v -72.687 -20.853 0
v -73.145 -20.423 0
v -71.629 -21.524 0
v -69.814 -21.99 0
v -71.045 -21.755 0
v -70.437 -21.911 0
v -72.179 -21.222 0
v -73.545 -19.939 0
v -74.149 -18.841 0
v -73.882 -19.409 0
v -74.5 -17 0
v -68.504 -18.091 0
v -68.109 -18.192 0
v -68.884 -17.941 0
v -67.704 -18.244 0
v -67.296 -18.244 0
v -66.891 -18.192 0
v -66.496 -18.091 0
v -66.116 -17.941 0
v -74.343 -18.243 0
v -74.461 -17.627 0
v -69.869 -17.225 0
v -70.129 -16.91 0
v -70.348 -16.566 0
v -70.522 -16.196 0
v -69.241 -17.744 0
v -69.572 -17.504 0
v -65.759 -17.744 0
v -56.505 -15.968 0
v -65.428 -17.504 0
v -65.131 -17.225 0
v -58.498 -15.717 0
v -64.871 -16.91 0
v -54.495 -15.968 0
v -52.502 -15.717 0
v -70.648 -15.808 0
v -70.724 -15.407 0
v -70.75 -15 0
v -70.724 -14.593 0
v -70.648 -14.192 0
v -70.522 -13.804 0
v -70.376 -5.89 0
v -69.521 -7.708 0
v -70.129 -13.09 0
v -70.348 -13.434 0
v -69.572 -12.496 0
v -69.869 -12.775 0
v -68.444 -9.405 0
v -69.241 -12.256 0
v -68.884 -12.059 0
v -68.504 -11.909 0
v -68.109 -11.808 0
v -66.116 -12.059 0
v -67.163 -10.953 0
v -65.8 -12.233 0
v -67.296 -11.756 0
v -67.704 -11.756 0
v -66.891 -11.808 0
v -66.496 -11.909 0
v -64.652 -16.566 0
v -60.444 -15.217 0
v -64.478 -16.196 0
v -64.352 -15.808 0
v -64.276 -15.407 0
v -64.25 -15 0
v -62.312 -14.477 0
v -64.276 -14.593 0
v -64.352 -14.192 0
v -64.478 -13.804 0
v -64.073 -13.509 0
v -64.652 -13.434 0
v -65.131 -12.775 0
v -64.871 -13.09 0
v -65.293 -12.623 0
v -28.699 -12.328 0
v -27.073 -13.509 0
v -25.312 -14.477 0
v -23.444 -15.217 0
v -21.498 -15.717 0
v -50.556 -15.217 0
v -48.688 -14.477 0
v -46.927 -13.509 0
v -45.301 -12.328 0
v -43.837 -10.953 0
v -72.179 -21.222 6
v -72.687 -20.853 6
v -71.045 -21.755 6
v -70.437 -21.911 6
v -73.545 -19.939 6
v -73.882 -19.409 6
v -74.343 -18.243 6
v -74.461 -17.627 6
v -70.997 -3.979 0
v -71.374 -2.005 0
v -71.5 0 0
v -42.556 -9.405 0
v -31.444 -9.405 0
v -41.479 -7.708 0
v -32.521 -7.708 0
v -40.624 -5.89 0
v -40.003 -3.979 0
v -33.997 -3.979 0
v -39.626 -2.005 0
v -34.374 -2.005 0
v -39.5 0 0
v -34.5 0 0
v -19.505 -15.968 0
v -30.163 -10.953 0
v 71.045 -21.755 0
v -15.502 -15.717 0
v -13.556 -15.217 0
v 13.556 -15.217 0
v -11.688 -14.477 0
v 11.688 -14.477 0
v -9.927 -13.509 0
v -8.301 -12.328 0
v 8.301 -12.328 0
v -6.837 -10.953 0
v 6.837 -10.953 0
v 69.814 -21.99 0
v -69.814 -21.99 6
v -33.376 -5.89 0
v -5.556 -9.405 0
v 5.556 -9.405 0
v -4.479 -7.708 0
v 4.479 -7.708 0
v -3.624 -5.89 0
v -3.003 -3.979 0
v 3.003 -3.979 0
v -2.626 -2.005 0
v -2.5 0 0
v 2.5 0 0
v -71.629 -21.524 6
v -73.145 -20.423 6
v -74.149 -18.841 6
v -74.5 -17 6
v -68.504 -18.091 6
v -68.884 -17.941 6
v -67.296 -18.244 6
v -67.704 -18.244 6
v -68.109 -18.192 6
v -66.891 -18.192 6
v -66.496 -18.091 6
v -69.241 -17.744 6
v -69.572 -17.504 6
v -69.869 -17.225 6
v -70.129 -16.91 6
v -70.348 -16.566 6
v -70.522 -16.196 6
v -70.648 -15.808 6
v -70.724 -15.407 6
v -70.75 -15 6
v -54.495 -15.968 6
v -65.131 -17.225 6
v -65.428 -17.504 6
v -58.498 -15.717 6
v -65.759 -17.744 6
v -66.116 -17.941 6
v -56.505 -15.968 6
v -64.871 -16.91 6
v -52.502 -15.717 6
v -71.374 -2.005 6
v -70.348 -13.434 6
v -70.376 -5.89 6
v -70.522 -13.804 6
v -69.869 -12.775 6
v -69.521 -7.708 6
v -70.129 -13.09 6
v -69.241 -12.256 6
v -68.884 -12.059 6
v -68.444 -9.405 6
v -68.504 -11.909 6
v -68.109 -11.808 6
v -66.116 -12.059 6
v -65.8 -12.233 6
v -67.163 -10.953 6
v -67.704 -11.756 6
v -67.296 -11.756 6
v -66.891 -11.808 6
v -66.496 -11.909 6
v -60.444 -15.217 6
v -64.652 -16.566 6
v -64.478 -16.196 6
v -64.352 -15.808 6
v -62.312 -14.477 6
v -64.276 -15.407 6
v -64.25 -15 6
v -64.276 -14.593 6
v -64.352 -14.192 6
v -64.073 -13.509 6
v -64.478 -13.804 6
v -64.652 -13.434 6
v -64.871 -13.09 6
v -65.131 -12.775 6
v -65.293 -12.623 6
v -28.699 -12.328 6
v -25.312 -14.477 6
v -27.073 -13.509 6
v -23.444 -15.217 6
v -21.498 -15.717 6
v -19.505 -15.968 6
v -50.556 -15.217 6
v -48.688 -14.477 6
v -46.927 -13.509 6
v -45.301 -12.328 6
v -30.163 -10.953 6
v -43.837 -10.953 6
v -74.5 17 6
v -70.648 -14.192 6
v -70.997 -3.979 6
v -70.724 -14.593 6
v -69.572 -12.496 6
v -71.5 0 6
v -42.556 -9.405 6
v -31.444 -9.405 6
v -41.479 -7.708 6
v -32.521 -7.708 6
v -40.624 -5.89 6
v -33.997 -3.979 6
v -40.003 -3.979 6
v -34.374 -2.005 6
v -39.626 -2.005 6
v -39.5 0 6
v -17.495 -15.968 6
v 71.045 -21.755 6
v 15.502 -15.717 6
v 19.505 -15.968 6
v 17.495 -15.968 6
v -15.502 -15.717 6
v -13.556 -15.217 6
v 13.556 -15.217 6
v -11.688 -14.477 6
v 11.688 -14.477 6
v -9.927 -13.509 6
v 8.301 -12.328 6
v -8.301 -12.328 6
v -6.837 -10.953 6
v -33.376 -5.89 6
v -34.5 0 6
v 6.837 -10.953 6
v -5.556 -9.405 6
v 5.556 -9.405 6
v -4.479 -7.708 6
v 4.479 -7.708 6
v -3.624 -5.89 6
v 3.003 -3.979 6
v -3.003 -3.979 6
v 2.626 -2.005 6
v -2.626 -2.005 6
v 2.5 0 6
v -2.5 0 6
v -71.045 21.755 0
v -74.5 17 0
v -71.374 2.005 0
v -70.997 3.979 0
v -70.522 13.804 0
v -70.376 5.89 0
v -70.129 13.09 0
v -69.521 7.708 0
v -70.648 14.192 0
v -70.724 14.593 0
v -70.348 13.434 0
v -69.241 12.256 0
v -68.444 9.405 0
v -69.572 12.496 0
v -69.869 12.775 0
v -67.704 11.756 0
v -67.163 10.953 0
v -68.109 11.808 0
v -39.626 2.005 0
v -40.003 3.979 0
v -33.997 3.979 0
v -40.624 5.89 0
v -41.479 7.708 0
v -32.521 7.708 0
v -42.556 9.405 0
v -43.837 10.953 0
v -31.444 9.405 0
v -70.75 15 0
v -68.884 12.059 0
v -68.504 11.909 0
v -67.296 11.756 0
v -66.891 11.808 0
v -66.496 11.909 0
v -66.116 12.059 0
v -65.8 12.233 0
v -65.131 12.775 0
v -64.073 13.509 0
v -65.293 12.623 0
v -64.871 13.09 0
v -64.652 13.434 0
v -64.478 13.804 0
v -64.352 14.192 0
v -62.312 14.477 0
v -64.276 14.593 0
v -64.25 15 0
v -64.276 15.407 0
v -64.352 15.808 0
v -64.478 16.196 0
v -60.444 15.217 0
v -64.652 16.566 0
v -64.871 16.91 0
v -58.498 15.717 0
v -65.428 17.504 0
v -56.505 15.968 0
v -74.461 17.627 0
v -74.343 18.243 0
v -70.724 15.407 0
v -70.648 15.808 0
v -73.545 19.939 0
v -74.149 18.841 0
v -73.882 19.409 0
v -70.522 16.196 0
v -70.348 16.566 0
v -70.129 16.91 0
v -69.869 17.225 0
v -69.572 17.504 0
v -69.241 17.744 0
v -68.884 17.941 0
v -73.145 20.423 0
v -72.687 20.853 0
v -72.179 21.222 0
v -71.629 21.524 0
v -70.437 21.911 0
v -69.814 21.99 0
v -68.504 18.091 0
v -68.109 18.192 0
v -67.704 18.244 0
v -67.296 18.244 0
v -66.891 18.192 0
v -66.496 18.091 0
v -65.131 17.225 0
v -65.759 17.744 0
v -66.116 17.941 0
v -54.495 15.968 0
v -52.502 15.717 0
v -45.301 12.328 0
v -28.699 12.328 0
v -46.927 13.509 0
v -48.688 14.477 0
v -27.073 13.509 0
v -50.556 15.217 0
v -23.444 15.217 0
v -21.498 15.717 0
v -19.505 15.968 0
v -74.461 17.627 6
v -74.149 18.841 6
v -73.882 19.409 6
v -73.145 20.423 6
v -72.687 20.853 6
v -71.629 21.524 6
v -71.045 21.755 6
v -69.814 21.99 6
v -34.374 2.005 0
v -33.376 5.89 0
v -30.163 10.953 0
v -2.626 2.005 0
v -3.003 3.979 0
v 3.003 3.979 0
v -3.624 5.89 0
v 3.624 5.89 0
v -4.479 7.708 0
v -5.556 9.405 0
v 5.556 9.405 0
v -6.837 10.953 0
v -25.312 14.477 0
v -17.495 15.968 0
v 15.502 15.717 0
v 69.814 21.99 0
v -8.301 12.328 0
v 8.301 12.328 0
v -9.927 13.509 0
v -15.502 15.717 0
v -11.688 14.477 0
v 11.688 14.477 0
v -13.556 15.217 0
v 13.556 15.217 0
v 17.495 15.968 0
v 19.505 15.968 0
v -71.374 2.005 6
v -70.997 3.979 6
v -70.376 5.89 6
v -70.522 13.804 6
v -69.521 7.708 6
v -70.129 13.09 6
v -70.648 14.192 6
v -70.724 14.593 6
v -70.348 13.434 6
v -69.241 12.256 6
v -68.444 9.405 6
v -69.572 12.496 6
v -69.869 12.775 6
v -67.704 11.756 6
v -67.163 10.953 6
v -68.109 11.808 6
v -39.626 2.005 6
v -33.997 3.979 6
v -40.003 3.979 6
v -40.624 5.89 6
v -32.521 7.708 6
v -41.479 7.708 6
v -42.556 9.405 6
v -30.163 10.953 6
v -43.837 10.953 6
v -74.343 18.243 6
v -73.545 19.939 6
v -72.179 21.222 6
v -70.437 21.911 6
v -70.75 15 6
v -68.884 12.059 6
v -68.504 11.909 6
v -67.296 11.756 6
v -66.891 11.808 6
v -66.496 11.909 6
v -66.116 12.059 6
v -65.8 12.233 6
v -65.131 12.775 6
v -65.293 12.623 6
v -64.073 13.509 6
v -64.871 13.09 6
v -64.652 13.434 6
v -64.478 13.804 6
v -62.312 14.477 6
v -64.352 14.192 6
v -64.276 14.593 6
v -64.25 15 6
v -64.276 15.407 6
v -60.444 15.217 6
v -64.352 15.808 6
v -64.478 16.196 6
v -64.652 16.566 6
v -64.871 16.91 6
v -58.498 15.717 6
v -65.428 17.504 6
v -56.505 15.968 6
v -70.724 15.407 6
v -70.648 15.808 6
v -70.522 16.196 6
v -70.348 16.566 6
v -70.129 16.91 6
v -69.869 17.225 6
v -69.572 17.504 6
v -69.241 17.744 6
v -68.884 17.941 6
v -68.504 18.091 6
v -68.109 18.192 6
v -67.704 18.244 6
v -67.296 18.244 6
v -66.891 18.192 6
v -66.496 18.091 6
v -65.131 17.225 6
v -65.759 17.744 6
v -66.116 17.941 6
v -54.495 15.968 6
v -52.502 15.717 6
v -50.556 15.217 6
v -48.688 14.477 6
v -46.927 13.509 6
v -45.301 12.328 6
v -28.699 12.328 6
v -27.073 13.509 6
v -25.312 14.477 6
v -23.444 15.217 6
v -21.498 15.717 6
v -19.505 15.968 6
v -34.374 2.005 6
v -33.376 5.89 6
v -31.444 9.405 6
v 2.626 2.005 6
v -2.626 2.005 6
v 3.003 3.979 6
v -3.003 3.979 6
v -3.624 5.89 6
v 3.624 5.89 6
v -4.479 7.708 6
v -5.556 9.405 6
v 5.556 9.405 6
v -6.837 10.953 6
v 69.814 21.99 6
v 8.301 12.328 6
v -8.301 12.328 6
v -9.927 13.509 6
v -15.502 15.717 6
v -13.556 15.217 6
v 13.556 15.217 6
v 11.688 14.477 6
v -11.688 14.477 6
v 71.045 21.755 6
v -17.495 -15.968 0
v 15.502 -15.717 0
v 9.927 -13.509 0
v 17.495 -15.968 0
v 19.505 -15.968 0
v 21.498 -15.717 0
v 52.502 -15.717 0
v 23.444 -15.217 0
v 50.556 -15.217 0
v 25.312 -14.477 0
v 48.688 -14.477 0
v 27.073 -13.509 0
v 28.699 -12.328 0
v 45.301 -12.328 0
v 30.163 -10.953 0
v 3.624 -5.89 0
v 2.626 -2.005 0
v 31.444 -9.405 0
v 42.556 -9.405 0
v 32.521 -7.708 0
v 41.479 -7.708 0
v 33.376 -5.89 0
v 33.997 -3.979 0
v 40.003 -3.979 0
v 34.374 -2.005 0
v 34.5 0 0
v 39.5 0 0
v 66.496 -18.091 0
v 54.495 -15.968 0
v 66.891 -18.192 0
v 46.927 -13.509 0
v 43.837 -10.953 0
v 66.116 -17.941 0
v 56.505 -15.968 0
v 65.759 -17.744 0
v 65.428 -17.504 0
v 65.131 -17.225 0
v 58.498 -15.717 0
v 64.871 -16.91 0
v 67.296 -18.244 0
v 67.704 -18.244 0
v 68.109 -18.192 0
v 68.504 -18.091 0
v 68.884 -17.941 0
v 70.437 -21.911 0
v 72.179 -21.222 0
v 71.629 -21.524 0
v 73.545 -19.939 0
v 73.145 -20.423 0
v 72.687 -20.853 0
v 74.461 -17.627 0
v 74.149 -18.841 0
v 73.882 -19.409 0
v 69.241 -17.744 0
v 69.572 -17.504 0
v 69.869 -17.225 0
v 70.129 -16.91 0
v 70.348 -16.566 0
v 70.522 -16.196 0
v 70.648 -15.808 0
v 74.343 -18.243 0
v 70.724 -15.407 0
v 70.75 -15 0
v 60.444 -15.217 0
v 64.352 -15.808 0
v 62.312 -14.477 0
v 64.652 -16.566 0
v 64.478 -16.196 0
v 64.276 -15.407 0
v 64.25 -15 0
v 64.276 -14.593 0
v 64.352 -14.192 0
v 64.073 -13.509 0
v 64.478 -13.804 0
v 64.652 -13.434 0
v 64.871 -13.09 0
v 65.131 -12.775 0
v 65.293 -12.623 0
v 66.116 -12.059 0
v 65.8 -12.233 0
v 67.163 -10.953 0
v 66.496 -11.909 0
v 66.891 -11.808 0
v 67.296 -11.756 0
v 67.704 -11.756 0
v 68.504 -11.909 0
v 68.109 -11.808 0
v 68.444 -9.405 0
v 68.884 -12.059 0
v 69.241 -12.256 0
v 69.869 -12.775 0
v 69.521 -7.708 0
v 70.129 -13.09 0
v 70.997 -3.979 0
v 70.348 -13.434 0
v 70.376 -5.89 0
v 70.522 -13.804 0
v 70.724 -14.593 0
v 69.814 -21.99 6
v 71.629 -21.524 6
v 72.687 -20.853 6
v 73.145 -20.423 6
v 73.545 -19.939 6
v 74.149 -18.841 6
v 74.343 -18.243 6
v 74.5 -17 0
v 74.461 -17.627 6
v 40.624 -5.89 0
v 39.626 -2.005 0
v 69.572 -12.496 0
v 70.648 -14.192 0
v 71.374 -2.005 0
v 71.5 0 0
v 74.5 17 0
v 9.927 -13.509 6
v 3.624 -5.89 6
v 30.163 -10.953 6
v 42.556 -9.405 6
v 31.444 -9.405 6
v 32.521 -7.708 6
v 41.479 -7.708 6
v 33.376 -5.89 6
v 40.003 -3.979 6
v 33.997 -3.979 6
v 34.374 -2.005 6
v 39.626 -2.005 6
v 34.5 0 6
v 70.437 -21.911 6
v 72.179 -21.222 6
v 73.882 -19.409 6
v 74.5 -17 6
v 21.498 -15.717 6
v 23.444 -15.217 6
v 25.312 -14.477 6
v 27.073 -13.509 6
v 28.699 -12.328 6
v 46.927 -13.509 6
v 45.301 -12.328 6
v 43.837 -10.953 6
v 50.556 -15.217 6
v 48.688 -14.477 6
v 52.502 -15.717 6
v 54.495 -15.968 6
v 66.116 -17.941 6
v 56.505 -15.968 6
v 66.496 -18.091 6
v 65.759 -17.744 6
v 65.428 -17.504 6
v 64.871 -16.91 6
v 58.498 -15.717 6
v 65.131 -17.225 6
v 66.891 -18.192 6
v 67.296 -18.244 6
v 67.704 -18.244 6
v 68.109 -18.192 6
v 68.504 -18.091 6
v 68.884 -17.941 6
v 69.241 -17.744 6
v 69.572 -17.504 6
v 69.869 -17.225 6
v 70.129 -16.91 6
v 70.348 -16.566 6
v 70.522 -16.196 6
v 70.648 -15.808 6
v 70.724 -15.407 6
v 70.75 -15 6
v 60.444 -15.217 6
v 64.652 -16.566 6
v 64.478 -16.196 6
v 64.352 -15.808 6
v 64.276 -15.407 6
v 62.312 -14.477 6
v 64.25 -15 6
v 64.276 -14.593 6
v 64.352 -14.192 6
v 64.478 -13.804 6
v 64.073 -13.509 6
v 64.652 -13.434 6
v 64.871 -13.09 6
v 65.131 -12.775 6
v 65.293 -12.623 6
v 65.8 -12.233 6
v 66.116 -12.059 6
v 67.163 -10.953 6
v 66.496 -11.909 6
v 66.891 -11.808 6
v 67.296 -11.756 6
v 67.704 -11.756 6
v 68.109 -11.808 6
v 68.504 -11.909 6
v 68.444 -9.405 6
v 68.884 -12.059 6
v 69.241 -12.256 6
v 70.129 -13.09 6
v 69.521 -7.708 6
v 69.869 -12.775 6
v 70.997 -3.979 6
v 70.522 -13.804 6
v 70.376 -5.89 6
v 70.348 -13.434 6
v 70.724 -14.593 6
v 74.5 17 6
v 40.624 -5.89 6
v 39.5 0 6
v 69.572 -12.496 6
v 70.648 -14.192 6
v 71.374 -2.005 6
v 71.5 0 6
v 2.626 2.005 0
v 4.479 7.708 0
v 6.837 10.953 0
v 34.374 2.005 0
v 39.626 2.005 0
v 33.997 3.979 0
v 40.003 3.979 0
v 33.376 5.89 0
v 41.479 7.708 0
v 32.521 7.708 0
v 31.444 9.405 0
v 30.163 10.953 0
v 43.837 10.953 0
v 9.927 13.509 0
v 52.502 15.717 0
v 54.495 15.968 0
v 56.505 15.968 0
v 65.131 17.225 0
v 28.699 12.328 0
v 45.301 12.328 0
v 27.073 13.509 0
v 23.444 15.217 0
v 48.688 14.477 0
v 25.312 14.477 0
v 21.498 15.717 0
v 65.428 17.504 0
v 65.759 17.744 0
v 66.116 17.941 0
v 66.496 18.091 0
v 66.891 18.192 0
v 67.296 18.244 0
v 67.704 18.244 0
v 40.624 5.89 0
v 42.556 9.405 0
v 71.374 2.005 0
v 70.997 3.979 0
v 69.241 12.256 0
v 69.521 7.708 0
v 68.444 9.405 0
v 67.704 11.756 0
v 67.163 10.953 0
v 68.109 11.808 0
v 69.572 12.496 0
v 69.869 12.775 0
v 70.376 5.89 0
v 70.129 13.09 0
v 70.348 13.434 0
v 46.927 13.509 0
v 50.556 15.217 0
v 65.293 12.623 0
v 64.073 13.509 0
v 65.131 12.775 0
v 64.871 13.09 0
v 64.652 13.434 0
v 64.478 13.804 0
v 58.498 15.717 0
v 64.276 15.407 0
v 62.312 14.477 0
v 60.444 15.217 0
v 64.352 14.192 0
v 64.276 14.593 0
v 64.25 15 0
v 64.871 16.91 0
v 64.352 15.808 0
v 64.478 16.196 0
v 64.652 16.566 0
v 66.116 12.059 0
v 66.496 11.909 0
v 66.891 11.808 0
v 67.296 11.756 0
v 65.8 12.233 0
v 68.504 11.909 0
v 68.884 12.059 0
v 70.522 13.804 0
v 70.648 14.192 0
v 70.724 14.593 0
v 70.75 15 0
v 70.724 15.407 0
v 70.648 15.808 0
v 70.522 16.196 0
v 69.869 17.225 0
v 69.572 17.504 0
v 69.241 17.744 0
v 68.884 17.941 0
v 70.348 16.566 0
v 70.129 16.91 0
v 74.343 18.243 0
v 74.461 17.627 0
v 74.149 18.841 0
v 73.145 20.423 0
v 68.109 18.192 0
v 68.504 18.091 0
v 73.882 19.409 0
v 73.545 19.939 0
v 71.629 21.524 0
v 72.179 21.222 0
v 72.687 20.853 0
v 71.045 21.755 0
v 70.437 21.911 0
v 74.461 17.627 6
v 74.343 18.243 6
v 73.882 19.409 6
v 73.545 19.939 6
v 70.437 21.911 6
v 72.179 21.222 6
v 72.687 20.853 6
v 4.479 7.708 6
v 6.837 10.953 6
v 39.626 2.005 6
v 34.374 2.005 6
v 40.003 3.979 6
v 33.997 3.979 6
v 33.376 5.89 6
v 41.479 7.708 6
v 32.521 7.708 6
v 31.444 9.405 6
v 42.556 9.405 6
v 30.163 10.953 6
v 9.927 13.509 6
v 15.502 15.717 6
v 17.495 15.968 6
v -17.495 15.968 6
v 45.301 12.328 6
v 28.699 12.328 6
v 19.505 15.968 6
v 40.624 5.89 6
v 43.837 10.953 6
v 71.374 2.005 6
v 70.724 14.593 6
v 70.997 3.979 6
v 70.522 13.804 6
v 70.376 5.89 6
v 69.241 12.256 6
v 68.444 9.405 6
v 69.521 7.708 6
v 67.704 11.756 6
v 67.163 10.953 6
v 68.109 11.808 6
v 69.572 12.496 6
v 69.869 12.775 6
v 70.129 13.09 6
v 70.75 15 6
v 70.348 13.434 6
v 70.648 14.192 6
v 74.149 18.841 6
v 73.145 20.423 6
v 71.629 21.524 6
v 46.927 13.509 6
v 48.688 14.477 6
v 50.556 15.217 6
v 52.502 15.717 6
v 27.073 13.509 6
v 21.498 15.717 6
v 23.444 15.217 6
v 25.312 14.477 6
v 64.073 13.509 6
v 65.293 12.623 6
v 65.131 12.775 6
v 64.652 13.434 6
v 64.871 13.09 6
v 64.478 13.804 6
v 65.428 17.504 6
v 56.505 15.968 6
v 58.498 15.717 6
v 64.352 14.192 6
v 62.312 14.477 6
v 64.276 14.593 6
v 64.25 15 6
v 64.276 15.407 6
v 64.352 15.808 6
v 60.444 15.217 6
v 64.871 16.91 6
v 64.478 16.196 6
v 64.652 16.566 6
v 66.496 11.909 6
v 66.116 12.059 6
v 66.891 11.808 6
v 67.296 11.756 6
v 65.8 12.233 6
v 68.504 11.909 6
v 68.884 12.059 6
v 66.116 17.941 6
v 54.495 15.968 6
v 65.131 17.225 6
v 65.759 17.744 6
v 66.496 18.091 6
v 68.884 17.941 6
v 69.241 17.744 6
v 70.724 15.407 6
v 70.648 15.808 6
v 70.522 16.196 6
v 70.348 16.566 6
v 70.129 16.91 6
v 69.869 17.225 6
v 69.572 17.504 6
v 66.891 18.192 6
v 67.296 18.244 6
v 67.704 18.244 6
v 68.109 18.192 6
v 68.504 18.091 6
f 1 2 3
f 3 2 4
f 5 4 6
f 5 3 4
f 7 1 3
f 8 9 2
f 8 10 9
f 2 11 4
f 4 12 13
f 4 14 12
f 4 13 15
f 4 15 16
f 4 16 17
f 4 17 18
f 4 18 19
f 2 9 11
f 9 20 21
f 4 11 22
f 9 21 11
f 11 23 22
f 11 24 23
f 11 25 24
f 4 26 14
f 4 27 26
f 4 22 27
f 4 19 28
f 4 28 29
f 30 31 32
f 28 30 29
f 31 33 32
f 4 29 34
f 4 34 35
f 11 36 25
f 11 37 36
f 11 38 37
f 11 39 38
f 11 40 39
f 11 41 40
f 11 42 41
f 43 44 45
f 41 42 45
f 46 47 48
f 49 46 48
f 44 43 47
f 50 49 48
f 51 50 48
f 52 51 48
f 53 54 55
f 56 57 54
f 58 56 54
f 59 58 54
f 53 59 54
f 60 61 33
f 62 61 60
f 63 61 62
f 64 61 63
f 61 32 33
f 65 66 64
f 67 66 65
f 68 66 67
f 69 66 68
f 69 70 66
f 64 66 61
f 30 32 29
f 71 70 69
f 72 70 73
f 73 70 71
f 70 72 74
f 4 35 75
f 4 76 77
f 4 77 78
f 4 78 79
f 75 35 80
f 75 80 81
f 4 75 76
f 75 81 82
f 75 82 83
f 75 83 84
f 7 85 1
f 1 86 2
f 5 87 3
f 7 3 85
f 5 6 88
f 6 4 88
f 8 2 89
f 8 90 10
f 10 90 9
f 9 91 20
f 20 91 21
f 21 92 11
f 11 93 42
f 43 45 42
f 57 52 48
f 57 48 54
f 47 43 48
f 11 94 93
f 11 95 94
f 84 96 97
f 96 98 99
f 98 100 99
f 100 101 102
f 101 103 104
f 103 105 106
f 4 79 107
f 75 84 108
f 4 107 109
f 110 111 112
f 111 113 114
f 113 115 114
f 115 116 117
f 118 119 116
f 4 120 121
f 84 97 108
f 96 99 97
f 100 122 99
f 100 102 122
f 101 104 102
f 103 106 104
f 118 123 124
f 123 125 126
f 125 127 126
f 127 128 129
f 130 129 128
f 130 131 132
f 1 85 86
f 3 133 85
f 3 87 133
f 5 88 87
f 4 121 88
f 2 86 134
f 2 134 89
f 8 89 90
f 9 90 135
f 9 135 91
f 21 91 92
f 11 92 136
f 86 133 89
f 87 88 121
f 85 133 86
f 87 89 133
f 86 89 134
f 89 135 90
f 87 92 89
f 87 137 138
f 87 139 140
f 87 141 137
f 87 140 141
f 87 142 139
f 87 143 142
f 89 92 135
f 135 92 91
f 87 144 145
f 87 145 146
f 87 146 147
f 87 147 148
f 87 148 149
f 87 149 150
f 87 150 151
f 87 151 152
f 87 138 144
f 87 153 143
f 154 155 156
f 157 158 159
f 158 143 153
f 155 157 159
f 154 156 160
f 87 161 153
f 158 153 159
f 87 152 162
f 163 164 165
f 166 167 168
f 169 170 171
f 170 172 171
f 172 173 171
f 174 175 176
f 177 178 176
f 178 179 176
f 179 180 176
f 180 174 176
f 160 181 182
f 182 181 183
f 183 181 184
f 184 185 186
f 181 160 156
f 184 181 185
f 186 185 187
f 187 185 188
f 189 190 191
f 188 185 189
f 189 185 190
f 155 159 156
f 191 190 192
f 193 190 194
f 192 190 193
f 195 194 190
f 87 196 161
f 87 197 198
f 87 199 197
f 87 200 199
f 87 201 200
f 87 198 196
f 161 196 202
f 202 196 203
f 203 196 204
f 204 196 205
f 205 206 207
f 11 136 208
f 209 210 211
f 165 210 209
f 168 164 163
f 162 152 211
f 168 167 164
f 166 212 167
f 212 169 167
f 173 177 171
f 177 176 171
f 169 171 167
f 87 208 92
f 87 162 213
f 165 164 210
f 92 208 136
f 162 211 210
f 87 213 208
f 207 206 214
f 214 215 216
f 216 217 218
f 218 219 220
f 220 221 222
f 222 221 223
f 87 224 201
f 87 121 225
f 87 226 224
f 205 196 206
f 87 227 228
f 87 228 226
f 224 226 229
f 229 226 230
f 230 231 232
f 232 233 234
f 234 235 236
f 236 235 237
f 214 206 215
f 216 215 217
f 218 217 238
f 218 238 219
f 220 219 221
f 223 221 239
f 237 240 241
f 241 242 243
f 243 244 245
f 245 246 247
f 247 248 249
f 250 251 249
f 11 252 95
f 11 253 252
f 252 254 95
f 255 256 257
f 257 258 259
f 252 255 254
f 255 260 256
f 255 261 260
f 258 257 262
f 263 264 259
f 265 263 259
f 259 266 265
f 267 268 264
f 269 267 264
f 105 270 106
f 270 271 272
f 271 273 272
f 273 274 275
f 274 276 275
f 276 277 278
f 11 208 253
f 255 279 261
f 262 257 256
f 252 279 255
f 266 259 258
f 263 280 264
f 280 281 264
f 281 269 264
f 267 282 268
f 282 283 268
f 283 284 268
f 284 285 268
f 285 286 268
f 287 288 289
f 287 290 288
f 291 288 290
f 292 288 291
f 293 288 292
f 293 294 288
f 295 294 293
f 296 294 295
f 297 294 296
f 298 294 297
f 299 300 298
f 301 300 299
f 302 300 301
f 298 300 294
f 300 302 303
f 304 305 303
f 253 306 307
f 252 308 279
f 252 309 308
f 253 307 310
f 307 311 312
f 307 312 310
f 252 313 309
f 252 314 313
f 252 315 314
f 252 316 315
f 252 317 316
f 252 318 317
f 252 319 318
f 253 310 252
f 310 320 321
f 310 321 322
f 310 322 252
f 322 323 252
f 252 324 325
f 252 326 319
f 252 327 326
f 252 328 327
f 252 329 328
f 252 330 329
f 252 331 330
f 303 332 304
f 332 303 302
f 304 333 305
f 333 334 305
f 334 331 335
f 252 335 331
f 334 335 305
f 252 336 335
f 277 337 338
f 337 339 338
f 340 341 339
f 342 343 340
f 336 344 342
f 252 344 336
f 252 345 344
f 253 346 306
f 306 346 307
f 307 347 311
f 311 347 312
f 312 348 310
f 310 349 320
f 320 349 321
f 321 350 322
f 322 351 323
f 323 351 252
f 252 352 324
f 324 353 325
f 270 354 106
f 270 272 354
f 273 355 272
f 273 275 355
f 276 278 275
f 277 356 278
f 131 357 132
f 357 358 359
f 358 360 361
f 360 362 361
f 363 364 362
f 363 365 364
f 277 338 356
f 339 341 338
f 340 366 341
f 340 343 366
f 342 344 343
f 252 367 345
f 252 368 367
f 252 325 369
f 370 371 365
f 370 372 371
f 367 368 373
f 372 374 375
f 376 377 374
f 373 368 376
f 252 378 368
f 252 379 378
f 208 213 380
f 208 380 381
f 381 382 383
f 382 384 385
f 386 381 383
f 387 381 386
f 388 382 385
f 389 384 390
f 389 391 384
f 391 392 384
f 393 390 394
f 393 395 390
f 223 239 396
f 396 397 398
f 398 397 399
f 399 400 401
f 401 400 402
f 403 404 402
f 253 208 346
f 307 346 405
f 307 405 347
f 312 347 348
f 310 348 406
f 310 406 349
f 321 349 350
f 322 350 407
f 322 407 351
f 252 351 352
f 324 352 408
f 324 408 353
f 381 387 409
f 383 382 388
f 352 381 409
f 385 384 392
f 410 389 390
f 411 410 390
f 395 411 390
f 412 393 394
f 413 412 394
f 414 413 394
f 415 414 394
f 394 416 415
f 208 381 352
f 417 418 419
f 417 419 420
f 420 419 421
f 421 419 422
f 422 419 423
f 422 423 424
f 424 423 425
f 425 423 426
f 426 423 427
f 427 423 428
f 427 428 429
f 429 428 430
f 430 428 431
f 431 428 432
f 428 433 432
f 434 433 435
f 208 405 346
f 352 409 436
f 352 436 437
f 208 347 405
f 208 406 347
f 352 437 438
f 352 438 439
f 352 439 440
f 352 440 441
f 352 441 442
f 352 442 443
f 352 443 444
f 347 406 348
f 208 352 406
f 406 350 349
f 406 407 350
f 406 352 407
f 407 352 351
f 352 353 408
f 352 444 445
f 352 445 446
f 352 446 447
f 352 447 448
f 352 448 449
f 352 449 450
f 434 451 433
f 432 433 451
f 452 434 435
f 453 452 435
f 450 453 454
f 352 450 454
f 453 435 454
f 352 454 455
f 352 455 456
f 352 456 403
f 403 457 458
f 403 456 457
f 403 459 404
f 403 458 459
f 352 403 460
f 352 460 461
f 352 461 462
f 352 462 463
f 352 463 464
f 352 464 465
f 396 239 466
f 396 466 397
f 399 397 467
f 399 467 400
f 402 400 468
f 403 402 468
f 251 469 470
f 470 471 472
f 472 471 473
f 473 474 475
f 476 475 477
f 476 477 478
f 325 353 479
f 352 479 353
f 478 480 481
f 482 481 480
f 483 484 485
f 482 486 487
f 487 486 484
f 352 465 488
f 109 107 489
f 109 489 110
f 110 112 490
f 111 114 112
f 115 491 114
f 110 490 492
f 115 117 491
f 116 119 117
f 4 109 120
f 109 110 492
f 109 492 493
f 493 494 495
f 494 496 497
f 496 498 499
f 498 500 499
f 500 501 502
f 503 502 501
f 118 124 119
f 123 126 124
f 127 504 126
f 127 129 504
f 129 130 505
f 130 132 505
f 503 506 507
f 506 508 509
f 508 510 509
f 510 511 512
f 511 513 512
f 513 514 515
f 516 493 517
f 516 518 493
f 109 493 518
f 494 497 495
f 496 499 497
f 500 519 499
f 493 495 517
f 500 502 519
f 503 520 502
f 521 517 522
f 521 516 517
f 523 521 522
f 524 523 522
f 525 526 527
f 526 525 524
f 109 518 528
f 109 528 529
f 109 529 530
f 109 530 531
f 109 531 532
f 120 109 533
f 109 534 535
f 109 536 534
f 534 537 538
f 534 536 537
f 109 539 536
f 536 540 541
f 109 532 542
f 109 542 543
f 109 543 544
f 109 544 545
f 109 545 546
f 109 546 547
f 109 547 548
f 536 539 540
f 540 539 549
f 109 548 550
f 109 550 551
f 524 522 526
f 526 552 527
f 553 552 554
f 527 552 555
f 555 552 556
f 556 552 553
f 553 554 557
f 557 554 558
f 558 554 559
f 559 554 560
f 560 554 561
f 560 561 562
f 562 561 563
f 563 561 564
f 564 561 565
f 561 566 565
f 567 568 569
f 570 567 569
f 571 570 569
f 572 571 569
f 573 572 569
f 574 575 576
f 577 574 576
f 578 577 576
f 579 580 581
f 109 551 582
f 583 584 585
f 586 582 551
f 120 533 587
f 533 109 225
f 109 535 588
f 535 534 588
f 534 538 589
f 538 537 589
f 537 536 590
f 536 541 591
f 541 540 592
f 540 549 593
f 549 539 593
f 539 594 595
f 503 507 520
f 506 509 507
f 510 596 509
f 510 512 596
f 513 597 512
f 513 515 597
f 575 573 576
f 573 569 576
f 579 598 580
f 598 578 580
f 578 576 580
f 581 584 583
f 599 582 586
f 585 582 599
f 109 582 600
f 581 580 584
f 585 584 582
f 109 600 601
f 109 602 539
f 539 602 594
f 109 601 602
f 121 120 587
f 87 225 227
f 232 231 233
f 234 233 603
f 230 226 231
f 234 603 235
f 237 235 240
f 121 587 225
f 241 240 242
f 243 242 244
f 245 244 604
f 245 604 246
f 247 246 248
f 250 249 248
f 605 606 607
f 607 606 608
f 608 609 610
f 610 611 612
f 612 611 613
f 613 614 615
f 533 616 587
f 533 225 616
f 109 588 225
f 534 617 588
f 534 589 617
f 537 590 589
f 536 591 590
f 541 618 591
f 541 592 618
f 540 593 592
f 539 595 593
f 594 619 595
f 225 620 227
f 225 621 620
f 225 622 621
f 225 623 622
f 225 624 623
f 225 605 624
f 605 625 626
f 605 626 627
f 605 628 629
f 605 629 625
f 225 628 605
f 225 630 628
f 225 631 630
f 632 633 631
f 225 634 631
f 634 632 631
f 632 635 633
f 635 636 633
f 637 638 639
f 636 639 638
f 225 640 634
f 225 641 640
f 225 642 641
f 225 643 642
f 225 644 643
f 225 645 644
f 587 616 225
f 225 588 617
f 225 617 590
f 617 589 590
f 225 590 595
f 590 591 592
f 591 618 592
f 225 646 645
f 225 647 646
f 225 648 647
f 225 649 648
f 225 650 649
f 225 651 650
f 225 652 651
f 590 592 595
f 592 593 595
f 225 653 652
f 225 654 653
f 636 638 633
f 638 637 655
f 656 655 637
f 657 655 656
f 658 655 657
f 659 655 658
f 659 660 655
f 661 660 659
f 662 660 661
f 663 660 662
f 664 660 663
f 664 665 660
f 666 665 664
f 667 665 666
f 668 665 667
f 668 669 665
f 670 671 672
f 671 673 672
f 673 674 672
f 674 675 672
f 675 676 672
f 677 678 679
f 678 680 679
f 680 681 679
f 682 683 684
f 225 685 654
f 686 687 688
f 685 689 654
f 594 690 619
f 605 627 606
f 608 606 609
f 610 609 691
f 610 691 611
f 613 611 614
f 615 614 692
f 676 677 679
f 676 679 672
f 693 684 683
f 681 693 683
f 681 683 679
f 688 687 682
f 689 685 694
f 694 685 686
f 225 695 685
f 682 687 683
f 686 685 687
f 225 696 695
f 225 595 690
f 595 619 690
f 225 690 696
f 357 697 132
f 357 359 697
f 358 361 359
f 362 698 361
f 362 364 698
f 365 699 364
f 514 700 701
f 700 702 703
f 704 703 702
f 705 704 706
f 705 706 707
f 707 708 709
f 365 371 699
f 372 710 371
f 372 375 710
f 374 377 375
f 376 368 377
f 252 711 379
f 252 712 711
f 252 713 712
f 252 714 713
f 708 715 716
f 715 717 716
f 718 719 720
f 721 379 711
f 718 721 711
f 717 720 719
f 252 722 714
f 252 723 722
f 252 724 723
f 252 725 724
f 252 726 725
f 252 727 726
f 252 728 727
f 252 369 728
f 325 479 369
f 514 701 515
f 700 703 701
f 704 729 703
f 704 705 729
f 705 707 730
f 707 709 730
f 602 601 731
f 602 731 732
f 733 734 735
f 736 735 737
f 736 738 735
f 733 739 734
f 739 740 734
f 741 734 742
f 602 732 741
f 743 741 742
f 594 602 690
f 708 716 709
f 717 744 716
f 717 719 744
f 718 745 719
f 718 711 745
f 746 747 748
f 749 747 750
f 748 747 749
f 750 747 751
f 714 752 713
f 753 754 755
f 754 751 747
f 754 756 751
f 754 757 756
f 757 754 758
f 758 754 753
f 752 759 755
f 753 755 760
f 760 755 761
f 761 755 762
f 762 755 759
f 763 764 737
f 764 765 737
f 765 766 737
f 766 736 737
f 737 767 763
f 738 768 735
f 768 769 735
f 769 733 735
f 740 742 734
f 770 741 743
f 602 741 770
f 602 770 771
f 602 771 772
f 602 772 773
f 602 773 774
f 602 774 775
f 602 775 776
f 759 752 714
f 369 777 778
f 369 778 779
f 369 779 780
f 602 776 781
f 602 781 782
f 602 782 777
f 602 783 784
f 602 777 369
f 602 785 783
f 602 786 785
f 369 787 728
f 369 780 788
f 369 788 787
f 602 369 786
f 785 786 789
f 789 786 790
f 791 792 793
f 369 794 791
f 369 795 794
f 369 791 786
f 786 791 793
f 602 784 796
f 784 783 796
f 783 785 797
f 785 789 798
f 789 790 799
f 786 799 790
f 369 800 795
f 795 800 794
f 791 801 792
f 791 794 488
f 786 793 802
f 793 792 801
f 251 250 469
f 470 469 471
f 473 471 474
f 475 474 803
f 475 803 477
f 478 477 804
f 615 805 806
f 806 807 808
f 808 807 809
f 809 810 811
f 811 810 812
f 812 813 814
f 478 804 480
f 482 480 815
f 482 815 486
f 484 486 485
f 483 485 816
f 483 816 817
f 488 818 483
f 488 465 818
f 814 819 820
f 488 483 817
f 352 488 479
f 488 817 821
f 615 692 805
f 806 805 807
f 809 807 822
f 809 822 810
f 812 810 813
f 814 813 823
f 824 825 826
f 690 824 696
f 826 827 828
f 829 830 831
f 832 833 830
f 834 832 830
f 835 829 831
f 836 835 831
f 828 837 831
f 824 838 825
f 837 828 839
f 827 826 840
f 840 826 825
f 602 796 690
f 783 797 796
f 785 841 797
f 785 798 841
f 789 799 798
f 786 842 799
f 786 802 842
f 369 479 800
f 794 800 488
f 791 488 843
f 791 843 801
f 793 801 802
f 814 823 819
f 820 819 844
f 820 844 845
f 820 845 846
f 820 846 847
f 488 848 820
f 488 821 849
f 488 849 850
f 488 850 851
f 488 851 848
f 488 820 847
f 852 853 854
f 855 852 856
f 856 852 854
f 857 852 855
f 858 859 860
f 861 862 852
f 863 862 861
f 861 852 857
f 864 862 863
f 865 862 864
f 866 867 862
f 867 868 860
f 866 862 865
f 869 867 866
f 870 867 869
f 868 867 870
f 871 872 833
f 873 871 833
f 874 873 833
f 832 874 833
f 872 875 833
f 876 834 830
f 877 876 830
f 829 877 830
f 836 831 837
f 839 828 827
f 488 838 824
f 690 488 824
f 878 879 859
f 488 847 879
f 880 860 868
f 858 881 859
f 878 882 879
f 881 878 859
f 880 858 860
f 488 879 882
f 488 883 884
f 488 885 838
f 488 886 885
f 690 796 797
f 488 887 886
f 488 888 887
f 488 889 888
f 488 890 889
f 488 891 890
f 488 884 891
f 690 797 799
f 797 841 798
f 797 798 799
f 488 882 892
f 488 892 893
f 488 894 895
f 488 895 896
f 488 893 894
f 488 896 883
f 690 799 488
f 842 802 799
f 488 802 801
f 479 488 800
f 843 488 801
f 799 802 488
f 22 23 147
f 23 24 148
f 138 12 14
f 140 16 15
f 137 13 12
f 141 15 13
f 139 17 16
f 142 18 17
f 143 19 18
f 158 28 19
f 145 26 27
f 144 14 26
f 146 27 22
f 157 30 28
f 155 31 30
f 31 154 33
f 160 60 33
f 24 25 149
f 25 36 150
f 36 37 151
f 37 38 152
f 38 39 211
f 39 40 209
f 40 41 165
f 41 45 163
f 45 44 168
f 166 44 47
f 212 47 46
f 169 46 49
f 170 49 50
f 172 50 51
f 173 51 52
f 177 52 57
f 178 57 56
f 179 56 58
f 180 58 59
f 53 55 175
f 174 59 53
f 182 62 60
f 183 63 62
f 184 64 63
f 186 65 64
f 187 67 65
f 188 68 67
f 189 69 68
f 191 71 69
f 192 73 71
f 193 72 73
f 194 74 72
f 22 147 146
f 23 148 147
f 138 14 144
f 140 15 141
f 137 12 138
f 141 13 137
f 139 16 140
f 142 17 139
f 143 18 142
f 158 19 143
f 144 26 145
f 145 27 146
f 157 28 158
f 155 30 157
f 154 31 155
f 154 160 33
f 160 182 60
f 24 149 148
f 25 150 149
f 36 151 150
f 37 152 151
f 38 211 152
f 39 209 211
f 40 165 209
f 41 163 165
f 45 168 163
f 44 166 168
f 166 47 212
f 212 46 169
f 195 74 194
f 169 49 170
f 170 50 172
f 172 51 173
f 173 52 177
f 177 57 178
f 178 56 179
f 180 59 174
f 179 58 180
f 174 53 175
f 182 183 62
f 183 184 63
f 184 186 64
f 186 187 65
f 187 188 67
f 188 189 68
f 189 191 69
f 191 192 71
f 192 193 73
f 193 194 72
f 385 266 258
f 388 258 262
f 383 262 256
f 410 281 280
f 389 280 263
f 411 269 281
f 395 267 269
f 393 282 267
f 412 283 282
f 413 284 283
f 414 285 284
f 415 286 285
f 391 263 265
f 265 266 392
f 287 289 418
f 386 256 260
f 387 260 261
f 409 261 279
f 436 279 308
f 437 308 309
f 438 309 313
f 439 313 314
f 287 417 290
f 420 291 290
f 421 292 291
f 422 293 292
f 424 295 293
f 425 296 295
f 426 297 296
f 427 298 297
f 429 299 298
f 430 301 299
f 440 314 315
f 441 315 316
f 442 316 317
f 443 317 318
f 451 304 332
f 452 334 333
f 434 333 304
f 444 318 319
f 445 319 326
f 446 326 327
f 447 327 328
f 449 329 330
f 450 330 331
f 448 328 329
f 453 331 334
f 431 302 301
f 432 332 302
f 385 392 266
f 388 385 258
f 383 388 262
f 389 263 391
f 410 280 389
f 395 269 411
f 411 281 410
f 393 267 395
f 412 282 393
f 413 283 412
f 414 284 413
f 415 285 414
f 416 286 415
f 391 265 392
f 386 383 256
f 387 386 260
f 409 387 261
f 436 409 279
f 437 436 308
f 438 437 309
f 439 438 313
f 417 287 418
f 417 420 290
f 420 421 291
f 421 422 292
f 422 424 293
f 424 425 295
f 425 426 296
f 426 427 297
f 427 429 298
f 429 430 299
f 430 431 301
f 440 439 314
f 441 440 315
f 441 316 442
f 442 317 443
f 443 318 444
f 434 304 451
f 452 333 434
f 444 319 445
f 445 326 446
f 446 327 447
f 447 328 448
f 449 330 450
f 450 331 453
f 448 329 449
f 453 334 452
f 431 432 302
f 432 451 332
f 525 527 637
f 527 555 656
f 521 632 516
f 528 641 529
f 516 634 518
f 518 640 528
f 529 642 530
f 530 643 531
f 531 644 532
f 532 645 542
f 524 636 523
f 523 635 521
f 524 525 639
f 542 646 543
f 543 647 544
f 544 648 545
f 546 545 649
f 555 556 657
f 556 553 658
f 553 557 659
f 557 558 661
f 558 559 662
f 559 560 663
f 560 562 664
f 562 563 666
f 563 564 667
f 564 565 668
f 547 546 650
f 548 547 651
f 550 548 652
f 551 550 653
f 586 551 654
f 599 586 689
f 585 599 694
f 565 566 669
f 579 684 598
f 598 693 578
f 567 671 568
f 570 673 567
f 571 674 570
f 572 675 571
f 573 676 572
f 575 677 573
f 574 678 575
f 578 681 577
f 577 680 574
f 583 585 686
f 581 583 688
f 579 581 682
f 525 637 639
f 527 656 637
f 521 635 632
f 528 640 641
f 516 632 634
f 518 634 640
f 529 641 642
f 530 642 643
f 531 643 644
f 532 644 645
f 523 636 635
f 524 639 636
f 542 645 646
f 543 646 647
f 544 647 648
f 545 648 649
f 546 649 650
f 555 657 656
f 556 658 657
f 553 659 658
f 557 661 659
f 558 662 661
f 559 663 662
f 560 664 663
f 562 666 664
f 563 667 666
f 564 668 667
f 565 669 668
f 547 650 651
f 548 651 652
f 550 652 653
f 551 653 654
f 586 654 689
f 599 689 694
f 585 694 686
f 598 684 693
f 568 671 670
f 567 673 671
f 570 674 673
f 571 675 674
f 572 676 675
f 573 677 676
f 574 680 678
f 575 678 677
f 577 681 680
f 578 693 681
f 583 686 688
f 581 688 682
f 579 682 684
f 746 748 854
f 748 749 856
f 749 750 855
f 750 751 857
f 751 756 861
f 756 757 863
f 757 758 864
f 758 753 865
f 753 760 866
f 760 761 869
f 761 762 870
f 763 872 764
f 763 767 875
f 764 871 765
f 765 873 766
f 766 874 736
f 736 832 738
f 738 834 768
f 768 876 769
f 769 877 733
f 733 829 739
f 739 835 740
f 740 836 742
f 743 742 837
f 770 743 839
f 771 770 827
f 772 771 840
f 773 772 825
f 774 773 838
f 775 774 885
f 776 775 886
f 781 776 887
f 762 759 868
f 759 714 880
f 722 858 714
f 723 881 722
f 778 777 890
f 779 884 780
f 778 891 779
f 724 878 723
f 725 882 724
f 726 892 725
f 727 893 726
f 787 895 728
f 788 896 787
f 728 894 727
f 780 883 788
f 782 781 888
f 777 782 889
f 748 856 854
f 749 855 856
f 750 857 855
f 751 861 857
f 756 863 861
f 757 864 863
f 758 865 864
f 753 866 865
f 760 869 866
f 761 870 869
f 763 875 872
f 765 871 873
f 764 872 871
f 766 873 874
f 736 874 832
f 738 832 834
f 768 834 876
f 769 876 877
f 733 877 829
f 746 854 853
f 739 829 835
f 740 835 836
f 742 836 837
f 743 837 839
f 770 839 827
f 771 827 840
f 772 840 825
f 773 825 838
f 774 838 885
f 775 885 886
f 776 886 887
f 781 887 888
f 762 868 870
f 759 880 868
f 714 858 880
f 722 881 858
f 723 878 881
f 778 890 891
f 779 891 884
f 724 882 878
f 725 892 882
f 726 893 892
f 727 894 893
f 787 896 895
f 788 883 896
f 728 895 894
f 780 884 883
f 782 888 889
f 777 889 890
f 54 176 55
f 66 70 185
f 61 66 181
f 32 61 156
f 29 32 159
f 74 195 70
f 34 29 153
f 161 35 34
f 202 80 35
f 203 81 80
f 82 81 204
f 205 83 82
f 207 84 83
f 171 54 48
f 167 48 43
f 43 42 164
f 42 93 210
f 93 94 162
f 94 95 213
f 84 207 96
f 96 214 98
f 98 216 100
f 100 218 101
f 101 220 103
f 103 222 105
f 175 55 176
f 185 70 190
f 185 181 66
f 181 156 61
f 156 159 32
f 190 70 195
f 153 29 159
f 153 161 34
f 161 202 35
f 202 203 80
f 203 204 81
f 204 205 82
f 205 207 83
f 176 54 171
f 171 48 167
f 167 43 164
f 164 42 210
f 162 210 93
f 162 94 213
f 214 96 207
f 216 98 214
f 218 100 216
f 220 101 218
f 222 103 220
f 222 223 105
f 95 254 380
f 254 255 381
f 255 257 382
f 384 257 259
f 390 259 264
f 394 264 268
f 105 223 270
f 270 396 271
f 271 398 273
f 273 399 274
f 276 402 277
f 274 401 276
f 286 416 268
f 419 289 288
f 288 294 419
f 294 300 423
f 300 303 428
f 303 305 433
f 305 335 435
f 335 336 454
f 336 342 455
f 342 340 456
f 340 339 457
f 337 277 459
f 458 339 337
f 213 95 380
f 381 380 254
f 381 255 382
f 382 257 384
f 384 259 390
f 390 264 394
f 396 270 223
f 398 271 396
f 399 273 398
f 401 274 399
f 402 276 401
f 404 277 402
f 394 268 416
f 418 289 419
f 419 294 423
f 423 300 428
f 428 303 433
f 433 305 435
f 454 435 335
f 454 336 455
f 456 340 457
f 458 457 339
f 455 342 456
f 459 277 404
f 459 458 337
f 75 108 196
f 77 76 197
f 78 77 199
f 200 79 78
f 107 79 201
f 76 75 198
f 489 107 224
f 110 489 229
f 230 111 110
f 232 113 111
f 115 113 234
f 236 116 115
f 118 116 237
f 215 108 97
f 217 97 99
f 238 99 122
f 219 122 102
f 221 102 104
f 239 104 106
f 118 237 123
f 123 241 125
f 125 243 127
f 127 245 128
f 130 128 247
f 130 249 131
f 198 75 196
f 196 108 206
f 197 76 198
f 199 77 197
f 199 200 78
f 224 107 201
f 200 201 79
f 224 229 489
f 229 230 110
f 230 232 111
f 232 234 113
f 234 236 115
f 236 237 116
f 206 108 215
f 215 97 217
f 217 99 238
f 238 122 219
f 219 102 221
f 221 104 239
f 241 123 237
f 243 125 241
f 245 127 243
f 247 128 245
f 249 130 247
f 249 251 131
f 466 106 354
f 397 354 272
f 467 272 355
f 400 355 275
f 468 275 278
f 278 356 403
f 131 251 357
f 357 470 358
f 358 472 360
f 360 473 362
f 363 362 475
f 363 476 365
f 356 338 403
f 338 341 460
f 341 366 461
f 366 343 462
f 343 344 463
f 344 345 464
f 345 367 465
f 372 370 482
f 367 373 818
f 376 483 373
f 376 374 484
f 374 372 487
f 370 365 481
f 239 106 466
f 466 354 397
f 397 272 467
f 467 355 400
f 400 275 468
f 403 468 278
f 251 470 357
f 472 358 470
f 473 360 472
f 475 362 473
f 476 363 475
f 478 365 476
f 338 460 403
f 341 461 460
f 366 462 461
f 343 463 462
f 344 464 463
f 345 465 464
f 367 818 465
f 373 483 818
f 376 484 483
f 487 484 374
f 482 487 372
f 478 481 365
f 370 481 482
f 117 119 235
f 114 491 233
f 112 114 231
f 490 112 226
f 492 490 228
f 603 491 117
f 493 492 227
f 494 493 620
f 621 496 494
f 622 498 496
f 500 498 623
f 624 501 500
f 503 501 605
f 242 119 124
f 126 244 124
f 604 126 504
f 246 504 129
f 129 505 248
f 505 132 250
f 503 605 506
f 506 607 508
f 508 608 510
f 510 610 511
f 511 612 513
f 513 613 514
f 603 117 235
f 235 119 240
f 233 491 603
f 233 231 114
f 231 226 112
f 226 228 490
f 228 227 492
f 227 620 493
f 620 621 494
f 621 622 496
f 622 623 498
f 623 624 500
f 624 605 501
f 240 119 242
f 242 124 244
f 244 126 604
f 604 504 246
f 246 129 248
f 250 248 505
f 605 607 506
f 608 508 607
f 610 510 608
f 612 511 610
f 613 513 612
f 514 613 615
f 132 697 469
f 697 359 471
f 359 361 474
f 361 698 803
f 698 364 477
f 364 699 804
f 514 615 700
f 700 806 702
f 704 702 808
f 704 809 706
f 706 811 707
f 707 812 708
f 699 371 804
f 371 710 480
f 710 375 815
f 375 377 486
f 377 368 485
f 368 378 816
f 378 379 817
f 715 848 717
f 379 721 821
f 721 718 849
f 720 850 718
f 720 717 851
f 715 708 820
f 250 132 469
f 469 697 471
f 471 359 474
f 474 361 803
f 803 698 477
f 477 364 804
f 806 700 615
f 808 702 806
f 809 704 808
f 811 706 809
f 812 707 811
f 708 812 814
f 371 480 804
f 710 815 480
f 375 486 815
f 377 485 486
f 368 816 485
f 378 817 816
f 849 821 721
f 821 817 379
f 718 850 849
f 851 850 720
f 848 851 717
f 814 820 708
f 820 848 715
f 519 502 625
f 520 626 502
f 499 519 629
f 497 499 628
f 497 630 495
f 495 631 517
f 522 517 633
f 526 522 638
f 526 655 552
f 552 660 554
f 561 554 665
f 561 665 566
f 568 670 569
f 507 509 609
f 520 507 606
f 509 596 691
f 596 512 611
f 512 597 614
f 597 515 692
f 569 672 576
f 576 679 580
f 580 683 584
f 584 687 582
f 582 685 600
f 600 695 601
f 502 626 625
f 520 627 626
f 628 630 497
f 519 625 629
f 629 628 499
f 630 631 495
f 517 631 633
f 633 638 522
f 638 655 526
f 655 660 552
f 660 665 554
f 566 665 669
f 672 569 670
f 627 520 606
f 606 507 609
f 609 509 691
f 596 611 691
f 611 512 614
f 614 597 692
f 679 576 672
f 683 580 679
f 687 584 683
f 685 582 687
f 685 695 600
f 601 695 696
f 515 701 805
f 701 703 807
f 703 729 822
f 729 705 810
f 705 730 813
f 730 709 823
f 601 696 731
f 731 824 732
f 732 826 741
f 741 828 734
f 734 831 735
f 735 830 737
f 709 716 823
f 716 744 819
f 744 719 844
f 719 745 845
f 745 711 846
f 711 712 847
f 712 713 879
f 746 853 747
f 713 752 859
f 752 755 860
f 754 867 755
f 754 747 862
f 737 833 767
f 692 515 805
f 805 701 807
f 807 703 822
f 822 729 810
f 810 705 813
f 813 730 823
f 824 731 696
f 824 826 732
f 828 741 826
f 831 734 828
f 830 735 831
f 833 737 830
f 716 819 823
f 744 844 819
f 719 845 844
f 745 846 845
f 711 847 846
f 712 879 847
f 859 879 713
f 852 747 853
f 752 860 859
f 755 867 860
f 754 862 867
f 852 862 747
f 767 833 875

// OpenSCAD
$fn = 50;

difference() {
	union() {
		hull() {
			translate(v = [-69.5, 17.0, 0]) {
				cylinder(h = 6, r = 5);
			}
			translate(v = [69.5, 17.0, 0]) {
				cylinder(h = 6, r = 5);
			}
			translate(v = [-69.5, -17.0, 0]) {
				cylinder(h = 6, r = 5);
			}
			translate(v = [69.5, -17.0, 0]) {
				cylinder(h = 6, r = 5);
			}
		}
	}
	union() {
		translate(v = [-67.5, -15.0, -100.0]) {
			cylinder(h = 200, r = 3.25);
		}
		translate(v = [-67.5, 15.0, -100.0]) {
			cylinder(h = 200, r = 3.25);
		}
		translate(v = [67.5, -15.0, -100.0]) {
			cylinder(h = 200, r = 3.25);
		}
		translate(v = [67.5, 15.0, -100.0]) {
			cylinder(h = 200, r = 3.25);
		}
		translate(v = [-67.5, -15.0, -100.0]) {
			cylinder(h = 200, r = 1.8);
		}
		translate(v = [-67.5, 15.0, -100.0]) {
			cylinder(h = 200, r = 1.8);
		}
		translate(v = [67.5, -15.0, -100.0]) {
			cylinder(h = 200, r = 1.8);
		}
		translate(v = [67.5, 15.0, -100.0]) {
			cylinder(h = 200, r = 1.8);
		}
		translate(v = [-55.5, 0, 0.0]) {
			cylinder(h = 6, r = 16.0);
		}
		translate(v = [-18.5, 0, 0.0]) {
			cylinder(h = 6, r = 16.0);
		}
		translate(v = [18.5, 0, 0.0]) {
			cylinder(h = 6, r = 16.0);
		}
		translate(v = [55.5, 0, 0.0]) {
			cylinder(h = 6, r = 16.0);
		}
	}
}
